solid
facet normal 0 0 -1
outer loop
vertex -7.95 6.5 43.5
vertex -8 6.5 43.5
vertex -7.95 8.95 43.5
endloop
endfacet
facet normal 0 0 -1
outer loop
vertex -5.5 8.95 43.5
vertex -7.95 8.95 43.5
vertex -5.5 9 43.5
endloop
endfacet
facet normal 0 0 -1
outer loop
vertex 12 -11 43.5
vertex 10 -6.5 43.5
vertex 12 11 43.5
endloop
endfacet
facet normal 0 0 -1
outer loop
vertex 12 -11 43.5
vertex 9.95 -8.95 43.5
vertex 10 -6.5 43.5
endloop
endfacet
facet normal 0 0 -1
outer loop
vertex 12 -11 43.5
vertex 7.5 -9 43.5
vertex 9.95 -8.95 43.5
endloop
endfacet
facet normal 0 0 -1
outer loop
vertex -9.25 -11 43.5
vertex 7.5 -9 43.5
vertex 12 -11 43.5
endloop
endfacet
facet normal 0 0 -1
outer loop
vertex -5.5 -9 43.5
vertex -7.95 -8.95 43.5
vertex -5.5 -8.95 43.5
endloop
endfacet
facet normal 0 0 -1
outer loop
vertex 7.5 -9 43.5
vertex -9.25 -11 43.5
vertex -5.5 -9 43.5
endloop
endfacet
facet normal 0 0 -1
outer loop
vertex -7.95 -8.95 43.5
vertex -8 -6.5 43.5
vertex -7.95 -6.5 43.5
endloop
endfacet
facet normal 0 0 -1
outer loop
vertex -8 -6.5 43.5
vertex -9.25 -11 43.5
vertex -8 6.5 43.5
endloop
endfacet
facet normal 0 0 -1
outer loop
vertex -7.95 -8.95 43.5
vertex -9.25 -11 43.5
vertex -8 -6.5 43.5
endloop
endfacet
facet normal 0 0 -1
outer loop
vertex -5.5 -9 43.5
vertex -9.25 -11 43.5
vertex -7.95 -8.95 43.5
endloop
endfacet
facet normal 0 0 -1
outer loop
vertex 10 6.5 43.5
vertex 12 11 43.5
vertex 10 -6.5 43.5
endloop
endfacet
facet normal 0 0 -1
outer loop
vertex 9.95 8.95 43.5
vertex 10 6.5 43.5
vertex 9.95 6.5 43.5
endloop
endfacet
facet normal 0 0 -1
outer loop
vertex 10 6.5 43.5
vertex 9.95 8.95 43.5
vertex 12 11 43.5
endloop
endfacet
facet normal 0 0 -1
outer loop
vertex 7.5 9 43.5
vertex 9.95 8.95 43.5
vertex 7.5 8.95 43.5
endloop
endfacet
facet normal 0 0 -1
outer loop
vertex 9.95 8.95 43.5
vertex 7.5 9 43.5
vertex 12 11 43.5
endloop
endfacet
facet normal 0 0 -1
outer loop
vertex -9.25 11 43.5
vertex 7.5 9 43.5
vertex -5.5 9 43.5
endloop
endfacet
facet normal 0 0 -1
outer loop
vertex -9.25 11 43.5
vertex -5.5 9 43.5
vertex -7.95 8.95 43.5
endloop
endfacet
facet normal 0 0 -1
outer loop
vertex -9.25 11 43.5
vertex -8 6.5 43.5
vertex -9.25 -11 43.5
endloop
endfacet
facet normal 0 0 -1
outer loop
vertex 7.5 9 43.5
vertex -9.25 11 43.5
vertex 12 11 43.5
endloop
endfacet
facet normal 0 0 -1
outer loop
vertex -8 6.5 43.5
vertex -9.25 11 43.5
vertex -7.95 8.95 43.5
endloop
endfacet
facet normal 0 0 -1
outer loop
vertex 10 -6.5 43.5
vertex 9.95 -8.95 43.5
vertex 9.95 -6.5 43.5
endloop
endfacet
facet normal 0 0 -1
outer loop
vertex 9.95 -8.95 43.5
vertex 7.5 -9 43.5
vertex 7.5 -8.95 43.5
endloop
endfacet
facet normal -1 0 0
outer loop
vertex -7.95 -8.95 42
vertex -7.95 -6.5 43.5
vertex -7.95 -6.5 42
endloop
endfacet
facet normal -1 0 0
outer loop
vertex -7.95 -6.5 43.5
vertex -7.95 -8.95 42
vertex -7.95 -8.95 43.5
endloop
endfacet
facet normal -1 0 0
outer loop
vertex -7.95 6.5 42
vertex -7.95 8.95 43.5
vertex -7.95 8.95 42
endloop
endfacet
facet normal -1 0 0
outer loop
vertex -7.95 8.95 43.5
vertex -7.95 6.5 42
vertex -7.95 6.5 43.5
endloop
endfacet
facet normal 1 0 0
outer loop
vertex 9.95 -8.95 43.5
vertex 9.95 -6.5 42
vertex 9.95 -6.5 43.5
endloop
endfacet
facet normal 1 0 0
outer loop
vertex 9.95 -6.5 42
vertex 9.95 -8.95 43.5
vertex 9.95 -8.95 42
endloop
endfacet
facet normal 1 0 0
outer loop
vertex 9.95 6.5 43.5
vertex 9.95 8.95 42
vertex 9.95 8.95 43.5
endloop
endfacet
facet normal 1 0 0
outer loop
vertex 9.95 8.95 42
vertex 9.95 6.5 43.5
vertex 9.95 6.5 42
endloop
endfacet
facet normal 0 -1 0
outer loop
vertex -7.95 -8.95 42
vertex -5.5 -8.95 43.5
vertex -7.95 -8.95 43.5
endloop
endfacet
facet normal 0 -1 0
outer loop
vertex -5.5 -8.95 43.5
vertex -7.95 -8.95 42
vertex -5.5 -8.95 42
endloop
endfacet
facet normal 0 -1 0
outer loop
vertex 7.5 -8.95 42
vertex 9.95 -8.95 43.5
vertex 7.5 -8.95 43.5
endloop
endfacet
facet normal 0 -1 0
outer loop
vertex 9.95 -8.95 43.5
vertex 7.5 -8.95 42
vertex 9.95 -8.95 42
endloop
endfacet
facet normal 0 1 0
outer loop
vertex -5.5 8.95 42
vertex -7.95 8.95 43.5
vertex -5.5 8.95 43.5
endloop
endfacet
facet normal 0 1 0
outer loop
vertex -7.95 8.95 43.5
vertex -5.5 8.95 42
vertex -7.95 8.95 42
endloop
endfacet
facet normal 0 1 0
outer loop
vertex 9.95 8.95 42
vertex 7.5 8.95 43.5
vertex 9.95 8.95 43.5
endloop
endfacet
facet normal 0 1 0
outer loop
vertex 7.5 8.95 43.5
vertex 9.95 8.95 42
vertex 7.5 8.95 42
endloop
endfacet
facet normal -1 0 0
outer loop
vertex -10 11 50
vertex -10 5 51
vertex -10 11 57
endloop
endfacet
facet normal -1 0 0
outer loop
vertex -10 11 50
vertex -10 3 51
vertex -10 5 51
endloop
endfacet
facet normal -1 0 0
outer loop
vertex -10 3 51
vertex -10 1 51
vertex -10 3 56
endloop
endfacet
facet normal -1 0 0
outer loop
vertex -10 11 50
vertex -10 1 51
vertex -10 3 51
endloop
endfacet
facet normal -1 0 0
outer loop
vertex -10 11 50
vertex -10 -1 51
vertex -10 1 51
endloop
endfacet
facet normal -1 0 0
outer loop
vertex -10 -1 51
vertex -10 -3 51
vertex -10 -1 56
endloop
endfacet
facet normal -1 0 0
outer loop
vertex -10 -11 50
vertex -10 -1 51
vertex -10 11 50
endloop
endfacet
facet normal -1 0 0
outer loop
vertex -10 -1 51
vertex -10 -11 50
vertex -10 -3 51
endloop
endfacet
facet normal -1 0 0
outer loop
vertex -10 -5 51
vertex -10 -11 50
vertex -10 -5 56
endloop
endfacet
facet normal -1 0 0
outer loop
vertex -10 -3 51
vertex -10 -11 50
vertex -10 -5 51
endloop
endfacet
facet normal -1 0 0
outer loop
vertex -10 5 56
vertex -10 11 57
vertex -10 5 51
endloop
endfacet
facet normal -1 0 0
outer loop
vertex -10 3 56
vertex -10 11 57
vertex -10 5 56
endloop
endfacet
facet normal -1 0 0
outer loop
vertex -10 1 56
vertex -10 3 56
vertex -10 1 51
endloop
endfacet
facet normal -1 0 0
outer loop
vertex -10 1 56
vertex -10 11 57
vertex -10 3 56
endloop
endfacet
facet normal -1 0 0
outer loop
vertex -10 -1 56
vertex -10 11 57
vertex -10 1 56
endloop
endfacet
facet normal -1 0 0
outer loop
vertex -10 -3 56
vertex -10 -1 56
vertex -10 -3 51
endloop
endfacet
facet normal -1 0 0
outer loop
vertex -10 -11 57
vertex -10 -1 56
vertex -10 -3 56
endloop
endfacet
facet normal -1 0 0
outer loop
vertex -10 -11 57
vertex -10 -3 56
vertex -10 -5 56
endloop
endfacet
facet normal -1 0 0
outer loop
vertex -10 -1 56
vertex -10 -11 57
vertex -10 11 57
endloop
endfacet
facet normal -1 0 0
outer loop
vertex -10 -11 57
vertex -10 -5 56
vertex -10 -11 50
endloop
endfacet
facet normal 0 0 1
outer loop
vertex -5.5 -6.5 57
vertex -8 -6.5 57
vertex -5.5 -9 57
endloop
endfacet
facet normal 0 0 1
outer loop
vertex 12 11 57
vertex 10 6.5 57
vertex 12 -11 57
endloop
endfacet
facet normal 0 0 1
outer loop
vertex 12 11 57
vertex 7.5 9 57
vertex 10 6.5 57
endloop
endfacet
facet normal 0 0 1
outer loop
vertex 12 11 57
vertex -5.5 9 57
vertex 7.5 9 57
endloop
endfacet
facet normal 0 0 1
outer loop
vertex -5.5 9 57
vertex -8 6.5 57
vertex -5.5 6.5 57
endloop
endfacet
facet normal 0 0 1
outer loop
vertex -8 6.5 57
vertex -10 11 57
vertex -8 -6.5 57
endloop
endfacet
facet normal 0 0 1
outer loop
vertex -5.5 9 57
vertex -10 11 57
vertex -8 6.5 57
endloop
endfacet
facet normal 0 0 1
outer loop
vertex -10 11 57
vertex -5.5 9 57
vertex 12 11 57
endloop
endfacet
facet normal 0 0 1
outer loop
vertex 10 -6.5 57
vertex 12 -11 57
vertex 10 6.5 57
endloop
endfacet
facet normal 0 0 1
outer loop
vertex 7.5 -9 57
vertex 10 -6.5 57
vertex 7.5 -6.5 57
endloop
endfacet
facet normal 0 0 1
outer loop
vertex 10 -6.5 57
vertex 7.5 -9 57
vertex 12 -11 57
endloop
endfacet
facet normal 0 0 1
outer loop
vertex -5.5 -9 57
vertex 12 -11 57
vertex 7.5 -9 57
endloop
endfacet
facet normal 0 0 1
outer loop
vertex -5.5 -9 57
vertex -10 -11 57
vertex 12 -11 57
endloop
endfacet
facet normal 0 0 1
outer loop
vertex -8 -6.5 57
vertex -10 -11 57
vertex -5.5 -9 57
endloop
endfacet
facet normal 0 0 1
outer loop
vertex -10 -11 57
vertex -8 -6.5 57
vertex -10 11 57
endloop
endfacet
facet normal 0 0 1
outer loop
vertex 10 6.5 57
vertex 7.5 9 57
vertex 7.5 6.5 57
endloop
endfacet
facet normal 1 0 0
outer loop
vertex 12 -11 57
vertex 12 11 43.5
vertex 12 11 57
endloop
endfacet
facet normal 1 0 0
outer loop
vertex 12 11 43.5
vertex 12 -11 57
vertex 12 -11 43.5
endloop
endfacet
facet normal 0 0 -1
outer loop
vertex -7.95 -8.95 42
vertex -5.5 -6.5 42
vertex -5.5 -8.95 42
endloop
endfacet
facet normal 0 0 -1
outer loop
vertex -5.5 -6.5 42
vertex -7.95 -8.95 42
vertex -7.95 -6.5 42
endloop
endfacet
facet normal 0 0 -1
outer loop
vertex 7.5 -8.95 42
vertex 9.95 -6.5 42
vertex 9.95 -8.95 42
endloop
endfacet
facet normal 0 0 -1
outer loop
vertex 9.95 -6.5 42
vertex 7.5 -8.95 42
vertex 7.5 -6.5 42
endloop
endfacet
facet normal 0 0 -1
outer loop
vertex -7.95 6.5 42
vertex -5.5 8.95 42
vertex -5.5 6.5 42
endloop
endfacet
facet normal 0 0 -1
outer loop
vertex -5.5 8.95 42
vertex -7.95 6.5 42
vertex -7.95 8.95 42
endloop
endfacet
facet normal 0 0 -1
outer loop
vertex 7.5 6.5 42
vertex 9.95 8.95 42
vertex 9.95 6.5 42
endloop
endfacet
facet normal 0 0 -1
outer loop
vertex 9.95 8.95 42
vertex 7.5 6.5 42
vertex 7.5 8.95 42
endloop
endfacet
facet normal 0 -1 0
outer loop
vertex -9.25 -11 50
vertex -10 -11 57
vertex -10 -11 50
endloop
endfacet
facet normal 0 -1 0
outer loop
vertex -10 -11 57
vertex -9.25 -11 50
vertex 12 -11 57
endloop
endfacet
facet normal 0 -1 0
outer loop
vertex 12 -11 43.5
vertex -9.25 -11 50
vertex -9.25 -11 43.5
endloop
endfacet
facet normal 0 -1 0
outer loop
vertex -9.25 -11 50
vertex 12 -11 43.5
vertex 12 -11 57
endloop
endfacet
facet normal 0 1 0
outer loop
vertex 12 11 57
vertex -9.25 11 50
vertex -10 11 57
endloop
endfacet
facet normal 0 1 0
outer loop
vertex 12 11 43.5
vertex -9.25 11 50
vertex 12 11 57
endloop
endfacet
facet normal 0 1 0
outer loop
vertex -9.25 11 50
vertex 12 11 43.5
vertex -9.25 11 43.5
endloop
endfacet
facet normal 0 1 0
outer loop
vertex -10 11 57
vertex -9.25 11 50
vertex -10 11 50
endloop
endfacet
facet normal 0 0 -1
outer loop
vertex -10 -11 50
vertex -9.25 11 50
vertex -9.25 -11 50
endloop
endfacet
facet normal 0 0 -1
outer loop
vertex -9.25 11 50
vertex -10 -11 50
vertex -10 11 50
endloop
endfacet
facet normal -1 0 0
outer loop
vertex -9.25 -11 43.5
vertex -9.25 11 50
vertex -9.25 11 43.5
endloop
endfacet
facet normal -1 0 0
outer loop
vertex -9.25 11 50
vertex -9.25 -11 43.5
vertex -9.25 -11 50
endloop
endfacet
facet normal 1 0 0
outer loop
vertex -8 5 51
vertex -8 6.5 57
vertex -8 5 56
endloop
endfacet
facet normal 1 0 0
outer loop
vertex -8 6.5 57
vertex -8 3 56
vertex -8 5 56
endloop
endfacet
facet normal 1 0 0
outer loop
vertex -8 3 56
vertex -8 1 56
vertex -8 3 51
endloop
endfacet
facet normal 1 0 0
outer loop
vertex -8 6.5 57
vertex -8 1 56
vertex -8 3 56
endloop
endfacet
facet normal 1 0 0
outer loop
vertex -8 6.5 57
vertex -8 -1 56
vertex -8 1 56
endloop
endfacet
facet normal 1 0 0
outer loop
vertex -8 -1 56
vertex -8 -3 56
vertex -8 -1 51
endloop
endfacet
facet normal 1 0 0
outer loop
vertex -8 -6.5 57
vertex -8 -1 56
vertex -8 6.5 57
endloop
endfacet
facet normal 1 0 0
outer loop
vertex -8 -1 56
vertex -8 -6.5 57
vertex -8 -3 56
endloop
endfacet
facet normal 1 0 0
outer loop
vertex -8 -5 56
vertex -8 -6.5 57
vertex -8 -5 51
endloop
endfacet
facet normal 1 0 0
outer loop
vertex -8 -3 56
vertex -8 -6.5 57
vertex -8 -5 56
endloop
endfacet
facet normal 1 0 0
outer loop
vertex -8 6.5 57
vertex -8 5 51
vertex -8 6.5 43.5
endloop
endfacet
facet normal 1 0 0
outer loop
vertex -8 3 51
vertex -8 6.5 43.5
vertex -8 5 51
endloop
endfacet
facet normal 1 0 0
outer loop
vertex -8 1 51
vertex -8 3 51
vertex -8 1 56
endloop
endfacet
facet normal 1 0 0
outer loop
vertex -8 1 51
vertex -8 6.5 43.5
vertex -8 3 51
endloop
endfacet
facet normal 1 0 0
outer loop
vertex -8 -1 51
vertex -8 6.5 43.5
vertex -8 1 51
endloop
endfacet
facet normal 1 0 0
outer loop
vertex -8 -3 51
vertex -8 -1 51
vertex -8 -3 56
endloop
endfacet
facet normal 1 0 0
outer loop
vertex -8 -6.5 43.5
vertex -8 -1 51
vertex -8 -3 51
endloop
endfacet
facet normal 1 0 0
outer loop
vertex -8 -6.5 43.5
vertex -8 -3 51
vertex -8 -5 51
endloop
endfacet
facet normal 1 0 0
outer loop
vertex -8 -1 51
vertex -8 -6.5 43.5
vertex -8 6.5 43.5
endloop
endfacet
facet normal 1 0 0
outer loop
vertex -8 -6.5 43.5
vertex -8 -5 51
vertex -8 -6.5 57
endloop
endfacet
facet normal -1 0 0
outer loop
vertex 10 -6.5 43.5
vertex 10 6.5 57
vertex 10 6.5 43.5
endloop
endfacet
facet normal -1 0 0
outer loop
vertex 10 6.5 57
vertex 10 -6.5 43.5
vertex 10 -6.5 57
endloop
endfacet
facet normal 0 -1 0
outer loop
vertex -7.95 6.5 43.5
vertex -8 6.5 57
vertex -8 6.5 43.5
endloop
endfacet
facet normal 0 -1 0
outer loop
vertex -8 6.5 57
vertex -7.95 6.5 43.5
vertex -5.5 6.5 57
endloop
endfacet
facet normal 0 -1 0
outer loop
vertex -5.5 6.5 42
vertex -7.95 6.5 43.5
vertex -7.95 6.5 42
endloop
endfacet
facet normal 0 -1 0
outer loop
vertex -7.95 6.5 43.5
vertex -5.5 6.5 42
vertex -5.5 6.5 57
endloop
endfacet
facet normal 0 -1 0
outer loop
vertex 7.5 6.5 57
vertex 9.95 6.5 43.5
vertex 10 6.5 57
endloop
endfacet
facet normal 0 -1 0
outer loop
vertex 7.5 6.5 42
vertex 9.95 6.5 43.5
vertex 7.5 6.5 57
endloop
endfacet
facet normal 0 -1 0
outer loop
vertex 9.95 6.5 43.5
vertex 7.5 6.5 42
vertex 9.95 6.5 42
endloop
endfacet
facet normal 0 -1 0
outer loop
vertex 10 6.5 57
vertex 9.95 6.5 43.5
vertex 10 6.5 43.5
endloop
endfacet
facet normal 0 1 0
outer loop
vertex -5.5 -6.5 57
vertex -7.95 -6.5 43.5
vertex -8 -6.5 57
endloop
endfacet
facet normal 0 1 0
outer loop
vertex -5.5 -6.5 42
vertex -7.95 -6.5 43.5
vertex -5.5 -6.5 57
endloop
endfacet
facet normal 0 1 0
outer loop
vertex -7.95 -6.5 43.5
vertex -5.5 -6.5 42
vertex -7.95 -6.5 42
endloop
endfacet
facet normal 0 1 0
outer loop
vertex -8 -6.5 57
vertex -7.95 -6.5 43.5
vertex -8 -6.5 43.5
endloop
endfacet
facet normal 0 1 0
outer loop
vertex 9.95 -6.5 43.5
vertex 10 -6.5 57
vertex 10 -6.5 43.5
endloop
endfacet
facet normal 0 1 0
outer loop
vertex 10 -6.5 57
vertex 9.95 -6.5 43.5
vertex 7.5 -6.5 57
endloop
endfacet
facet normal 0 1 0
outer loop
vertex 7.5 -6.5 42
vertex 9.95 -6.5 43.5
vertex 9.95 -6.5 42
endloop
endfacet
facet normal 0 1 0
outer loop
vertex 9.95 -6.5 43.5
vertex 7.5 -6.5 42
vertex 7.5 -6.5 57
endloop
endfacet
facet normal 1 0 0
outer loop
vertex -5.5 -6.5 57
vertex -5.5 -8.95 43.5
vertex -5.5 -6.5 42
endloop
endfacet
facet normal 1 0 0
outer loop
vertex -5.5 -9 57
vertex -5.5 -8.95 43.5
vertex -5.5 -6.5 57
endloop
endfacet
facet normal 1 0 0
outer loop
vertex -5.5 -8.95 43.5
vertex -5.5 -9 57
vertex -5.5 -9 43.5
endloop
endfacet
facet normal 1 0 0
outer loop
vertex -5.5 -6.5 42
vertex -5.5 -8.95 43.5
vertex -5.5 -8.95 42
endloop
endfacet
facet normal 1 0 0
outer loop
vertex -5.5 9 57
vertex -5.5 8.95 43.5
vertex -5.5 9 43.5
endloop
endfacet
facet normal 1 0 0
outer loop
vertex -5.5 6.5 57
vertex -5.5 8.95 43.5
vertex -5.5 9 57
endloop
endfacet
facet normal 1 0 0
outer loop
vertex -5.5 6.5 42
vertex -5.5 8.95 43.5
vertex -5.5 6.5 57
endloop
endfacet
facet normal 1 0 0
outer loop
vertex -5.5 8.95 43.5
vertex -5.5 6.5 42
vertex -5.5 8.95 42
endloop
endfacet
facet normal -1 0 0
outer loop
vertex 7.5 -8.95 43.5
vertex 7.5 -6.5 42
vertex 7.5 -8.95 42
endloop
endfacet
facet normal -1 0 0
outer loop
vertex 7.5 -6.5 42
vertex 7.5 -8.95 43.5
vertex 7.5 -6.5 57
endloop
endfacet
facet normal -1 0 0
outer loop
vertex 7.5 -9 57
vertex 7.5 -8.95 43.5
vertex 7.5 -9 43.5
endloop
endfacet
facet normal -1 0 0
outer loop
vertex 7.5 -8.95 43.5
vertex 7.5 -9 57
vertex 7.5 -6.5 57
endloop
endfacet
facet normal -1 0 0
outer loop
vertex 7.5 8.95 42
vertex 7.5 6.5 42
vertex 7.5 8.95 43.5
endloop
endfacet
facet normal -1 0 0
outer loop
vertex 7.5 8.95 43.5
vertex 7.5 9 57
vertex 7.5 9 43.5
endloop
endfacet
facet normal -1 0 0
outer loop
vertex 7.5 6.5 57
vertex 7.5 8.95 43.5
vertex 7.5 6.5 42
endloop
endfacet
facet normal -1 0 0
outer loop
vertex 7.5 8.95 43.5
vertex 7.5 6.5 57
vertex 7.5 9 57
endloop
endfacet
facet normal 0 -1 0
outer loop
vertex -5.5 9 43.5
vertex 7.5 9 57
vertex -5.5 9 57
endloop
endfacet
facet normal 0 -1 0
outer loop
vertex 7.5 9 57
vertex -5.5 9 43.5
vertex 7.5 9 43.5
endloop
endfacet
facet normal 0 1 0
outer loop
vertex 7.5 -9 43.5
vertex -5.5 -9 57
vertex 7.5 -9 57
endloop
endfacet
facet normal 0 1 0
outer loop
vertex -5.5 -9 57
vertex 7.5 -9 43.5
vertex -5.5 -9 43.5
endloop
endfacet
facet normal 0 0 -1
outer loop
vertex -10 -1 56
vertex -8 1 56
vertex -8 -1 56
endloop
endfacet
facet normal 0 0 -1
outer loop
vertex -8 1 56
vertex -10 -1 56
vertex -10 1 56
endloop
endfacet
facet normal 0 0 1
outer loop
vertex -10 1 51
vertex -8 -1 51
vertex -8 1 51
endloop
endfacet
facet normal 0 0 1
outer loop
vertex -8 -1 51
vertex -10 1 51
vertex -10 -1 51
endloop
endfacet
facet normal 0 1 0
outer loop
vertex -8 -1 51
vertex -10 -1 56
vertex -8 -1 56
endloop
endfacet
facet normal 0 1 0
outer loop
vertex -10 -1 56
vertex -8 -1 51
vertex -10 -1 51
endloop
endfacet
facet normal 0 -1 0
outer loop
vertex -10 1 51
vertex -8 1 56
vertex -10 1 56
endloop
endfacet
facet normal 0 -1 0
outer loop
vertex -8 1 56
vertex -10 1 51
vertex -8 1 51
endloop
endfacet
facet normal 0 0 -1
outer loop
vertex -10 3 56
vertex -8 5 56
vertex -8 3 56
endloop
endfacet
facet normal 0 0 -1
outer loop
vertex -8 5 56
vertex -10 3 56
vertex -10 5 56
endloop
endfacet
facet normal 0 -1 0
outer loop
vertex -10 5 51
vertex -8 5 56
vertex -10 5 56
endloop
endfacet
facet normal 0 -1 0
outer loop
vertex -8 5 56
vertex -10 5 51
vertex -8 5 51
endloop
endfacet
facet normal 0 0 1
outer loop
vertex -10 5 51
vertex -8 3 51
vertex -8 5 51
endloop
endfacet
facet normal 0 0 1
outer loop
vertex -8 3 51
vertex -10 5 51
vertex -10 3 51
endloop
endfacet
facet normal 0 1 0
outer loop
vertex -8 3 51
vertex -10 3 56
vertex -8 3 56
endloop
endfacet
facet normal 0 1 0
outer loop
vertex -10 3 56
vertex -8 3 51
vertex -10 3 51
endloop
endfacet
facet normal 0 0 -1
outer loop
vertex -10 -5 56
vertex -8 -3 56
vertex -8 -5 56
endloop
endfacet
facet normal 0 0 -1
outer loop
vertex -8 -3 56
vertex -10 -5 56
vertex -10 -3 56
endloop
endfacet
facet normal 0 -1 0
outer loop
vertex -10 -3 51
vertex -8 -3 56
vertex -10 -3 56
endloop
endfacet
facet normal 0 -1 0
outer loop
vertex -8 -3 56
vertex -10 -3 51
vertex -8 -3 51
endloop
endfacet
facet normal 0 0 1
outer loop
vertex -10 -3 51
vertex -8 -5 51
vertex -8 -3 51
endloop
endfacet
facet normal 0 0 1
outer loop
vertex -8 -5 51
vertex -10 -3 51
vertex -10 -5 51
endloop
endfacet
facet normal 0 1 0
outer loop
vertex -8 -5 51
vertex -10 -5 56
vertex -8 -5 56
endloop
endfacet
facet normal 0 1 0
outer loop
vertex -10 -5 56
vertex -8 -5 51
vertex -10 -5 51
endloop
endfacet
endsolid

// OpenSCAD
translate([1, 0, 49.5]){
    difference(){
        cube([22, 22, 15], true);
        translate([-11, 0, -3]) cube([1.5, 25, 7], true);
        cube([18, 13, 25], true);
        cube([13, 18, 25], true);
        translate([-10, 0, 4]) cube([10, 2, 5], true);
        translate([-10, 4, 4]) cube([10, 2, 5], true);
        translate([-10, -4, 4]) cube([10, 2, 5], true);
        translate([0, 0, -12]){
            difference(){
                cube([23, 23, 12], true);
                cube([17.9, 17.9, 14], true);
            }
        }
    }
}
